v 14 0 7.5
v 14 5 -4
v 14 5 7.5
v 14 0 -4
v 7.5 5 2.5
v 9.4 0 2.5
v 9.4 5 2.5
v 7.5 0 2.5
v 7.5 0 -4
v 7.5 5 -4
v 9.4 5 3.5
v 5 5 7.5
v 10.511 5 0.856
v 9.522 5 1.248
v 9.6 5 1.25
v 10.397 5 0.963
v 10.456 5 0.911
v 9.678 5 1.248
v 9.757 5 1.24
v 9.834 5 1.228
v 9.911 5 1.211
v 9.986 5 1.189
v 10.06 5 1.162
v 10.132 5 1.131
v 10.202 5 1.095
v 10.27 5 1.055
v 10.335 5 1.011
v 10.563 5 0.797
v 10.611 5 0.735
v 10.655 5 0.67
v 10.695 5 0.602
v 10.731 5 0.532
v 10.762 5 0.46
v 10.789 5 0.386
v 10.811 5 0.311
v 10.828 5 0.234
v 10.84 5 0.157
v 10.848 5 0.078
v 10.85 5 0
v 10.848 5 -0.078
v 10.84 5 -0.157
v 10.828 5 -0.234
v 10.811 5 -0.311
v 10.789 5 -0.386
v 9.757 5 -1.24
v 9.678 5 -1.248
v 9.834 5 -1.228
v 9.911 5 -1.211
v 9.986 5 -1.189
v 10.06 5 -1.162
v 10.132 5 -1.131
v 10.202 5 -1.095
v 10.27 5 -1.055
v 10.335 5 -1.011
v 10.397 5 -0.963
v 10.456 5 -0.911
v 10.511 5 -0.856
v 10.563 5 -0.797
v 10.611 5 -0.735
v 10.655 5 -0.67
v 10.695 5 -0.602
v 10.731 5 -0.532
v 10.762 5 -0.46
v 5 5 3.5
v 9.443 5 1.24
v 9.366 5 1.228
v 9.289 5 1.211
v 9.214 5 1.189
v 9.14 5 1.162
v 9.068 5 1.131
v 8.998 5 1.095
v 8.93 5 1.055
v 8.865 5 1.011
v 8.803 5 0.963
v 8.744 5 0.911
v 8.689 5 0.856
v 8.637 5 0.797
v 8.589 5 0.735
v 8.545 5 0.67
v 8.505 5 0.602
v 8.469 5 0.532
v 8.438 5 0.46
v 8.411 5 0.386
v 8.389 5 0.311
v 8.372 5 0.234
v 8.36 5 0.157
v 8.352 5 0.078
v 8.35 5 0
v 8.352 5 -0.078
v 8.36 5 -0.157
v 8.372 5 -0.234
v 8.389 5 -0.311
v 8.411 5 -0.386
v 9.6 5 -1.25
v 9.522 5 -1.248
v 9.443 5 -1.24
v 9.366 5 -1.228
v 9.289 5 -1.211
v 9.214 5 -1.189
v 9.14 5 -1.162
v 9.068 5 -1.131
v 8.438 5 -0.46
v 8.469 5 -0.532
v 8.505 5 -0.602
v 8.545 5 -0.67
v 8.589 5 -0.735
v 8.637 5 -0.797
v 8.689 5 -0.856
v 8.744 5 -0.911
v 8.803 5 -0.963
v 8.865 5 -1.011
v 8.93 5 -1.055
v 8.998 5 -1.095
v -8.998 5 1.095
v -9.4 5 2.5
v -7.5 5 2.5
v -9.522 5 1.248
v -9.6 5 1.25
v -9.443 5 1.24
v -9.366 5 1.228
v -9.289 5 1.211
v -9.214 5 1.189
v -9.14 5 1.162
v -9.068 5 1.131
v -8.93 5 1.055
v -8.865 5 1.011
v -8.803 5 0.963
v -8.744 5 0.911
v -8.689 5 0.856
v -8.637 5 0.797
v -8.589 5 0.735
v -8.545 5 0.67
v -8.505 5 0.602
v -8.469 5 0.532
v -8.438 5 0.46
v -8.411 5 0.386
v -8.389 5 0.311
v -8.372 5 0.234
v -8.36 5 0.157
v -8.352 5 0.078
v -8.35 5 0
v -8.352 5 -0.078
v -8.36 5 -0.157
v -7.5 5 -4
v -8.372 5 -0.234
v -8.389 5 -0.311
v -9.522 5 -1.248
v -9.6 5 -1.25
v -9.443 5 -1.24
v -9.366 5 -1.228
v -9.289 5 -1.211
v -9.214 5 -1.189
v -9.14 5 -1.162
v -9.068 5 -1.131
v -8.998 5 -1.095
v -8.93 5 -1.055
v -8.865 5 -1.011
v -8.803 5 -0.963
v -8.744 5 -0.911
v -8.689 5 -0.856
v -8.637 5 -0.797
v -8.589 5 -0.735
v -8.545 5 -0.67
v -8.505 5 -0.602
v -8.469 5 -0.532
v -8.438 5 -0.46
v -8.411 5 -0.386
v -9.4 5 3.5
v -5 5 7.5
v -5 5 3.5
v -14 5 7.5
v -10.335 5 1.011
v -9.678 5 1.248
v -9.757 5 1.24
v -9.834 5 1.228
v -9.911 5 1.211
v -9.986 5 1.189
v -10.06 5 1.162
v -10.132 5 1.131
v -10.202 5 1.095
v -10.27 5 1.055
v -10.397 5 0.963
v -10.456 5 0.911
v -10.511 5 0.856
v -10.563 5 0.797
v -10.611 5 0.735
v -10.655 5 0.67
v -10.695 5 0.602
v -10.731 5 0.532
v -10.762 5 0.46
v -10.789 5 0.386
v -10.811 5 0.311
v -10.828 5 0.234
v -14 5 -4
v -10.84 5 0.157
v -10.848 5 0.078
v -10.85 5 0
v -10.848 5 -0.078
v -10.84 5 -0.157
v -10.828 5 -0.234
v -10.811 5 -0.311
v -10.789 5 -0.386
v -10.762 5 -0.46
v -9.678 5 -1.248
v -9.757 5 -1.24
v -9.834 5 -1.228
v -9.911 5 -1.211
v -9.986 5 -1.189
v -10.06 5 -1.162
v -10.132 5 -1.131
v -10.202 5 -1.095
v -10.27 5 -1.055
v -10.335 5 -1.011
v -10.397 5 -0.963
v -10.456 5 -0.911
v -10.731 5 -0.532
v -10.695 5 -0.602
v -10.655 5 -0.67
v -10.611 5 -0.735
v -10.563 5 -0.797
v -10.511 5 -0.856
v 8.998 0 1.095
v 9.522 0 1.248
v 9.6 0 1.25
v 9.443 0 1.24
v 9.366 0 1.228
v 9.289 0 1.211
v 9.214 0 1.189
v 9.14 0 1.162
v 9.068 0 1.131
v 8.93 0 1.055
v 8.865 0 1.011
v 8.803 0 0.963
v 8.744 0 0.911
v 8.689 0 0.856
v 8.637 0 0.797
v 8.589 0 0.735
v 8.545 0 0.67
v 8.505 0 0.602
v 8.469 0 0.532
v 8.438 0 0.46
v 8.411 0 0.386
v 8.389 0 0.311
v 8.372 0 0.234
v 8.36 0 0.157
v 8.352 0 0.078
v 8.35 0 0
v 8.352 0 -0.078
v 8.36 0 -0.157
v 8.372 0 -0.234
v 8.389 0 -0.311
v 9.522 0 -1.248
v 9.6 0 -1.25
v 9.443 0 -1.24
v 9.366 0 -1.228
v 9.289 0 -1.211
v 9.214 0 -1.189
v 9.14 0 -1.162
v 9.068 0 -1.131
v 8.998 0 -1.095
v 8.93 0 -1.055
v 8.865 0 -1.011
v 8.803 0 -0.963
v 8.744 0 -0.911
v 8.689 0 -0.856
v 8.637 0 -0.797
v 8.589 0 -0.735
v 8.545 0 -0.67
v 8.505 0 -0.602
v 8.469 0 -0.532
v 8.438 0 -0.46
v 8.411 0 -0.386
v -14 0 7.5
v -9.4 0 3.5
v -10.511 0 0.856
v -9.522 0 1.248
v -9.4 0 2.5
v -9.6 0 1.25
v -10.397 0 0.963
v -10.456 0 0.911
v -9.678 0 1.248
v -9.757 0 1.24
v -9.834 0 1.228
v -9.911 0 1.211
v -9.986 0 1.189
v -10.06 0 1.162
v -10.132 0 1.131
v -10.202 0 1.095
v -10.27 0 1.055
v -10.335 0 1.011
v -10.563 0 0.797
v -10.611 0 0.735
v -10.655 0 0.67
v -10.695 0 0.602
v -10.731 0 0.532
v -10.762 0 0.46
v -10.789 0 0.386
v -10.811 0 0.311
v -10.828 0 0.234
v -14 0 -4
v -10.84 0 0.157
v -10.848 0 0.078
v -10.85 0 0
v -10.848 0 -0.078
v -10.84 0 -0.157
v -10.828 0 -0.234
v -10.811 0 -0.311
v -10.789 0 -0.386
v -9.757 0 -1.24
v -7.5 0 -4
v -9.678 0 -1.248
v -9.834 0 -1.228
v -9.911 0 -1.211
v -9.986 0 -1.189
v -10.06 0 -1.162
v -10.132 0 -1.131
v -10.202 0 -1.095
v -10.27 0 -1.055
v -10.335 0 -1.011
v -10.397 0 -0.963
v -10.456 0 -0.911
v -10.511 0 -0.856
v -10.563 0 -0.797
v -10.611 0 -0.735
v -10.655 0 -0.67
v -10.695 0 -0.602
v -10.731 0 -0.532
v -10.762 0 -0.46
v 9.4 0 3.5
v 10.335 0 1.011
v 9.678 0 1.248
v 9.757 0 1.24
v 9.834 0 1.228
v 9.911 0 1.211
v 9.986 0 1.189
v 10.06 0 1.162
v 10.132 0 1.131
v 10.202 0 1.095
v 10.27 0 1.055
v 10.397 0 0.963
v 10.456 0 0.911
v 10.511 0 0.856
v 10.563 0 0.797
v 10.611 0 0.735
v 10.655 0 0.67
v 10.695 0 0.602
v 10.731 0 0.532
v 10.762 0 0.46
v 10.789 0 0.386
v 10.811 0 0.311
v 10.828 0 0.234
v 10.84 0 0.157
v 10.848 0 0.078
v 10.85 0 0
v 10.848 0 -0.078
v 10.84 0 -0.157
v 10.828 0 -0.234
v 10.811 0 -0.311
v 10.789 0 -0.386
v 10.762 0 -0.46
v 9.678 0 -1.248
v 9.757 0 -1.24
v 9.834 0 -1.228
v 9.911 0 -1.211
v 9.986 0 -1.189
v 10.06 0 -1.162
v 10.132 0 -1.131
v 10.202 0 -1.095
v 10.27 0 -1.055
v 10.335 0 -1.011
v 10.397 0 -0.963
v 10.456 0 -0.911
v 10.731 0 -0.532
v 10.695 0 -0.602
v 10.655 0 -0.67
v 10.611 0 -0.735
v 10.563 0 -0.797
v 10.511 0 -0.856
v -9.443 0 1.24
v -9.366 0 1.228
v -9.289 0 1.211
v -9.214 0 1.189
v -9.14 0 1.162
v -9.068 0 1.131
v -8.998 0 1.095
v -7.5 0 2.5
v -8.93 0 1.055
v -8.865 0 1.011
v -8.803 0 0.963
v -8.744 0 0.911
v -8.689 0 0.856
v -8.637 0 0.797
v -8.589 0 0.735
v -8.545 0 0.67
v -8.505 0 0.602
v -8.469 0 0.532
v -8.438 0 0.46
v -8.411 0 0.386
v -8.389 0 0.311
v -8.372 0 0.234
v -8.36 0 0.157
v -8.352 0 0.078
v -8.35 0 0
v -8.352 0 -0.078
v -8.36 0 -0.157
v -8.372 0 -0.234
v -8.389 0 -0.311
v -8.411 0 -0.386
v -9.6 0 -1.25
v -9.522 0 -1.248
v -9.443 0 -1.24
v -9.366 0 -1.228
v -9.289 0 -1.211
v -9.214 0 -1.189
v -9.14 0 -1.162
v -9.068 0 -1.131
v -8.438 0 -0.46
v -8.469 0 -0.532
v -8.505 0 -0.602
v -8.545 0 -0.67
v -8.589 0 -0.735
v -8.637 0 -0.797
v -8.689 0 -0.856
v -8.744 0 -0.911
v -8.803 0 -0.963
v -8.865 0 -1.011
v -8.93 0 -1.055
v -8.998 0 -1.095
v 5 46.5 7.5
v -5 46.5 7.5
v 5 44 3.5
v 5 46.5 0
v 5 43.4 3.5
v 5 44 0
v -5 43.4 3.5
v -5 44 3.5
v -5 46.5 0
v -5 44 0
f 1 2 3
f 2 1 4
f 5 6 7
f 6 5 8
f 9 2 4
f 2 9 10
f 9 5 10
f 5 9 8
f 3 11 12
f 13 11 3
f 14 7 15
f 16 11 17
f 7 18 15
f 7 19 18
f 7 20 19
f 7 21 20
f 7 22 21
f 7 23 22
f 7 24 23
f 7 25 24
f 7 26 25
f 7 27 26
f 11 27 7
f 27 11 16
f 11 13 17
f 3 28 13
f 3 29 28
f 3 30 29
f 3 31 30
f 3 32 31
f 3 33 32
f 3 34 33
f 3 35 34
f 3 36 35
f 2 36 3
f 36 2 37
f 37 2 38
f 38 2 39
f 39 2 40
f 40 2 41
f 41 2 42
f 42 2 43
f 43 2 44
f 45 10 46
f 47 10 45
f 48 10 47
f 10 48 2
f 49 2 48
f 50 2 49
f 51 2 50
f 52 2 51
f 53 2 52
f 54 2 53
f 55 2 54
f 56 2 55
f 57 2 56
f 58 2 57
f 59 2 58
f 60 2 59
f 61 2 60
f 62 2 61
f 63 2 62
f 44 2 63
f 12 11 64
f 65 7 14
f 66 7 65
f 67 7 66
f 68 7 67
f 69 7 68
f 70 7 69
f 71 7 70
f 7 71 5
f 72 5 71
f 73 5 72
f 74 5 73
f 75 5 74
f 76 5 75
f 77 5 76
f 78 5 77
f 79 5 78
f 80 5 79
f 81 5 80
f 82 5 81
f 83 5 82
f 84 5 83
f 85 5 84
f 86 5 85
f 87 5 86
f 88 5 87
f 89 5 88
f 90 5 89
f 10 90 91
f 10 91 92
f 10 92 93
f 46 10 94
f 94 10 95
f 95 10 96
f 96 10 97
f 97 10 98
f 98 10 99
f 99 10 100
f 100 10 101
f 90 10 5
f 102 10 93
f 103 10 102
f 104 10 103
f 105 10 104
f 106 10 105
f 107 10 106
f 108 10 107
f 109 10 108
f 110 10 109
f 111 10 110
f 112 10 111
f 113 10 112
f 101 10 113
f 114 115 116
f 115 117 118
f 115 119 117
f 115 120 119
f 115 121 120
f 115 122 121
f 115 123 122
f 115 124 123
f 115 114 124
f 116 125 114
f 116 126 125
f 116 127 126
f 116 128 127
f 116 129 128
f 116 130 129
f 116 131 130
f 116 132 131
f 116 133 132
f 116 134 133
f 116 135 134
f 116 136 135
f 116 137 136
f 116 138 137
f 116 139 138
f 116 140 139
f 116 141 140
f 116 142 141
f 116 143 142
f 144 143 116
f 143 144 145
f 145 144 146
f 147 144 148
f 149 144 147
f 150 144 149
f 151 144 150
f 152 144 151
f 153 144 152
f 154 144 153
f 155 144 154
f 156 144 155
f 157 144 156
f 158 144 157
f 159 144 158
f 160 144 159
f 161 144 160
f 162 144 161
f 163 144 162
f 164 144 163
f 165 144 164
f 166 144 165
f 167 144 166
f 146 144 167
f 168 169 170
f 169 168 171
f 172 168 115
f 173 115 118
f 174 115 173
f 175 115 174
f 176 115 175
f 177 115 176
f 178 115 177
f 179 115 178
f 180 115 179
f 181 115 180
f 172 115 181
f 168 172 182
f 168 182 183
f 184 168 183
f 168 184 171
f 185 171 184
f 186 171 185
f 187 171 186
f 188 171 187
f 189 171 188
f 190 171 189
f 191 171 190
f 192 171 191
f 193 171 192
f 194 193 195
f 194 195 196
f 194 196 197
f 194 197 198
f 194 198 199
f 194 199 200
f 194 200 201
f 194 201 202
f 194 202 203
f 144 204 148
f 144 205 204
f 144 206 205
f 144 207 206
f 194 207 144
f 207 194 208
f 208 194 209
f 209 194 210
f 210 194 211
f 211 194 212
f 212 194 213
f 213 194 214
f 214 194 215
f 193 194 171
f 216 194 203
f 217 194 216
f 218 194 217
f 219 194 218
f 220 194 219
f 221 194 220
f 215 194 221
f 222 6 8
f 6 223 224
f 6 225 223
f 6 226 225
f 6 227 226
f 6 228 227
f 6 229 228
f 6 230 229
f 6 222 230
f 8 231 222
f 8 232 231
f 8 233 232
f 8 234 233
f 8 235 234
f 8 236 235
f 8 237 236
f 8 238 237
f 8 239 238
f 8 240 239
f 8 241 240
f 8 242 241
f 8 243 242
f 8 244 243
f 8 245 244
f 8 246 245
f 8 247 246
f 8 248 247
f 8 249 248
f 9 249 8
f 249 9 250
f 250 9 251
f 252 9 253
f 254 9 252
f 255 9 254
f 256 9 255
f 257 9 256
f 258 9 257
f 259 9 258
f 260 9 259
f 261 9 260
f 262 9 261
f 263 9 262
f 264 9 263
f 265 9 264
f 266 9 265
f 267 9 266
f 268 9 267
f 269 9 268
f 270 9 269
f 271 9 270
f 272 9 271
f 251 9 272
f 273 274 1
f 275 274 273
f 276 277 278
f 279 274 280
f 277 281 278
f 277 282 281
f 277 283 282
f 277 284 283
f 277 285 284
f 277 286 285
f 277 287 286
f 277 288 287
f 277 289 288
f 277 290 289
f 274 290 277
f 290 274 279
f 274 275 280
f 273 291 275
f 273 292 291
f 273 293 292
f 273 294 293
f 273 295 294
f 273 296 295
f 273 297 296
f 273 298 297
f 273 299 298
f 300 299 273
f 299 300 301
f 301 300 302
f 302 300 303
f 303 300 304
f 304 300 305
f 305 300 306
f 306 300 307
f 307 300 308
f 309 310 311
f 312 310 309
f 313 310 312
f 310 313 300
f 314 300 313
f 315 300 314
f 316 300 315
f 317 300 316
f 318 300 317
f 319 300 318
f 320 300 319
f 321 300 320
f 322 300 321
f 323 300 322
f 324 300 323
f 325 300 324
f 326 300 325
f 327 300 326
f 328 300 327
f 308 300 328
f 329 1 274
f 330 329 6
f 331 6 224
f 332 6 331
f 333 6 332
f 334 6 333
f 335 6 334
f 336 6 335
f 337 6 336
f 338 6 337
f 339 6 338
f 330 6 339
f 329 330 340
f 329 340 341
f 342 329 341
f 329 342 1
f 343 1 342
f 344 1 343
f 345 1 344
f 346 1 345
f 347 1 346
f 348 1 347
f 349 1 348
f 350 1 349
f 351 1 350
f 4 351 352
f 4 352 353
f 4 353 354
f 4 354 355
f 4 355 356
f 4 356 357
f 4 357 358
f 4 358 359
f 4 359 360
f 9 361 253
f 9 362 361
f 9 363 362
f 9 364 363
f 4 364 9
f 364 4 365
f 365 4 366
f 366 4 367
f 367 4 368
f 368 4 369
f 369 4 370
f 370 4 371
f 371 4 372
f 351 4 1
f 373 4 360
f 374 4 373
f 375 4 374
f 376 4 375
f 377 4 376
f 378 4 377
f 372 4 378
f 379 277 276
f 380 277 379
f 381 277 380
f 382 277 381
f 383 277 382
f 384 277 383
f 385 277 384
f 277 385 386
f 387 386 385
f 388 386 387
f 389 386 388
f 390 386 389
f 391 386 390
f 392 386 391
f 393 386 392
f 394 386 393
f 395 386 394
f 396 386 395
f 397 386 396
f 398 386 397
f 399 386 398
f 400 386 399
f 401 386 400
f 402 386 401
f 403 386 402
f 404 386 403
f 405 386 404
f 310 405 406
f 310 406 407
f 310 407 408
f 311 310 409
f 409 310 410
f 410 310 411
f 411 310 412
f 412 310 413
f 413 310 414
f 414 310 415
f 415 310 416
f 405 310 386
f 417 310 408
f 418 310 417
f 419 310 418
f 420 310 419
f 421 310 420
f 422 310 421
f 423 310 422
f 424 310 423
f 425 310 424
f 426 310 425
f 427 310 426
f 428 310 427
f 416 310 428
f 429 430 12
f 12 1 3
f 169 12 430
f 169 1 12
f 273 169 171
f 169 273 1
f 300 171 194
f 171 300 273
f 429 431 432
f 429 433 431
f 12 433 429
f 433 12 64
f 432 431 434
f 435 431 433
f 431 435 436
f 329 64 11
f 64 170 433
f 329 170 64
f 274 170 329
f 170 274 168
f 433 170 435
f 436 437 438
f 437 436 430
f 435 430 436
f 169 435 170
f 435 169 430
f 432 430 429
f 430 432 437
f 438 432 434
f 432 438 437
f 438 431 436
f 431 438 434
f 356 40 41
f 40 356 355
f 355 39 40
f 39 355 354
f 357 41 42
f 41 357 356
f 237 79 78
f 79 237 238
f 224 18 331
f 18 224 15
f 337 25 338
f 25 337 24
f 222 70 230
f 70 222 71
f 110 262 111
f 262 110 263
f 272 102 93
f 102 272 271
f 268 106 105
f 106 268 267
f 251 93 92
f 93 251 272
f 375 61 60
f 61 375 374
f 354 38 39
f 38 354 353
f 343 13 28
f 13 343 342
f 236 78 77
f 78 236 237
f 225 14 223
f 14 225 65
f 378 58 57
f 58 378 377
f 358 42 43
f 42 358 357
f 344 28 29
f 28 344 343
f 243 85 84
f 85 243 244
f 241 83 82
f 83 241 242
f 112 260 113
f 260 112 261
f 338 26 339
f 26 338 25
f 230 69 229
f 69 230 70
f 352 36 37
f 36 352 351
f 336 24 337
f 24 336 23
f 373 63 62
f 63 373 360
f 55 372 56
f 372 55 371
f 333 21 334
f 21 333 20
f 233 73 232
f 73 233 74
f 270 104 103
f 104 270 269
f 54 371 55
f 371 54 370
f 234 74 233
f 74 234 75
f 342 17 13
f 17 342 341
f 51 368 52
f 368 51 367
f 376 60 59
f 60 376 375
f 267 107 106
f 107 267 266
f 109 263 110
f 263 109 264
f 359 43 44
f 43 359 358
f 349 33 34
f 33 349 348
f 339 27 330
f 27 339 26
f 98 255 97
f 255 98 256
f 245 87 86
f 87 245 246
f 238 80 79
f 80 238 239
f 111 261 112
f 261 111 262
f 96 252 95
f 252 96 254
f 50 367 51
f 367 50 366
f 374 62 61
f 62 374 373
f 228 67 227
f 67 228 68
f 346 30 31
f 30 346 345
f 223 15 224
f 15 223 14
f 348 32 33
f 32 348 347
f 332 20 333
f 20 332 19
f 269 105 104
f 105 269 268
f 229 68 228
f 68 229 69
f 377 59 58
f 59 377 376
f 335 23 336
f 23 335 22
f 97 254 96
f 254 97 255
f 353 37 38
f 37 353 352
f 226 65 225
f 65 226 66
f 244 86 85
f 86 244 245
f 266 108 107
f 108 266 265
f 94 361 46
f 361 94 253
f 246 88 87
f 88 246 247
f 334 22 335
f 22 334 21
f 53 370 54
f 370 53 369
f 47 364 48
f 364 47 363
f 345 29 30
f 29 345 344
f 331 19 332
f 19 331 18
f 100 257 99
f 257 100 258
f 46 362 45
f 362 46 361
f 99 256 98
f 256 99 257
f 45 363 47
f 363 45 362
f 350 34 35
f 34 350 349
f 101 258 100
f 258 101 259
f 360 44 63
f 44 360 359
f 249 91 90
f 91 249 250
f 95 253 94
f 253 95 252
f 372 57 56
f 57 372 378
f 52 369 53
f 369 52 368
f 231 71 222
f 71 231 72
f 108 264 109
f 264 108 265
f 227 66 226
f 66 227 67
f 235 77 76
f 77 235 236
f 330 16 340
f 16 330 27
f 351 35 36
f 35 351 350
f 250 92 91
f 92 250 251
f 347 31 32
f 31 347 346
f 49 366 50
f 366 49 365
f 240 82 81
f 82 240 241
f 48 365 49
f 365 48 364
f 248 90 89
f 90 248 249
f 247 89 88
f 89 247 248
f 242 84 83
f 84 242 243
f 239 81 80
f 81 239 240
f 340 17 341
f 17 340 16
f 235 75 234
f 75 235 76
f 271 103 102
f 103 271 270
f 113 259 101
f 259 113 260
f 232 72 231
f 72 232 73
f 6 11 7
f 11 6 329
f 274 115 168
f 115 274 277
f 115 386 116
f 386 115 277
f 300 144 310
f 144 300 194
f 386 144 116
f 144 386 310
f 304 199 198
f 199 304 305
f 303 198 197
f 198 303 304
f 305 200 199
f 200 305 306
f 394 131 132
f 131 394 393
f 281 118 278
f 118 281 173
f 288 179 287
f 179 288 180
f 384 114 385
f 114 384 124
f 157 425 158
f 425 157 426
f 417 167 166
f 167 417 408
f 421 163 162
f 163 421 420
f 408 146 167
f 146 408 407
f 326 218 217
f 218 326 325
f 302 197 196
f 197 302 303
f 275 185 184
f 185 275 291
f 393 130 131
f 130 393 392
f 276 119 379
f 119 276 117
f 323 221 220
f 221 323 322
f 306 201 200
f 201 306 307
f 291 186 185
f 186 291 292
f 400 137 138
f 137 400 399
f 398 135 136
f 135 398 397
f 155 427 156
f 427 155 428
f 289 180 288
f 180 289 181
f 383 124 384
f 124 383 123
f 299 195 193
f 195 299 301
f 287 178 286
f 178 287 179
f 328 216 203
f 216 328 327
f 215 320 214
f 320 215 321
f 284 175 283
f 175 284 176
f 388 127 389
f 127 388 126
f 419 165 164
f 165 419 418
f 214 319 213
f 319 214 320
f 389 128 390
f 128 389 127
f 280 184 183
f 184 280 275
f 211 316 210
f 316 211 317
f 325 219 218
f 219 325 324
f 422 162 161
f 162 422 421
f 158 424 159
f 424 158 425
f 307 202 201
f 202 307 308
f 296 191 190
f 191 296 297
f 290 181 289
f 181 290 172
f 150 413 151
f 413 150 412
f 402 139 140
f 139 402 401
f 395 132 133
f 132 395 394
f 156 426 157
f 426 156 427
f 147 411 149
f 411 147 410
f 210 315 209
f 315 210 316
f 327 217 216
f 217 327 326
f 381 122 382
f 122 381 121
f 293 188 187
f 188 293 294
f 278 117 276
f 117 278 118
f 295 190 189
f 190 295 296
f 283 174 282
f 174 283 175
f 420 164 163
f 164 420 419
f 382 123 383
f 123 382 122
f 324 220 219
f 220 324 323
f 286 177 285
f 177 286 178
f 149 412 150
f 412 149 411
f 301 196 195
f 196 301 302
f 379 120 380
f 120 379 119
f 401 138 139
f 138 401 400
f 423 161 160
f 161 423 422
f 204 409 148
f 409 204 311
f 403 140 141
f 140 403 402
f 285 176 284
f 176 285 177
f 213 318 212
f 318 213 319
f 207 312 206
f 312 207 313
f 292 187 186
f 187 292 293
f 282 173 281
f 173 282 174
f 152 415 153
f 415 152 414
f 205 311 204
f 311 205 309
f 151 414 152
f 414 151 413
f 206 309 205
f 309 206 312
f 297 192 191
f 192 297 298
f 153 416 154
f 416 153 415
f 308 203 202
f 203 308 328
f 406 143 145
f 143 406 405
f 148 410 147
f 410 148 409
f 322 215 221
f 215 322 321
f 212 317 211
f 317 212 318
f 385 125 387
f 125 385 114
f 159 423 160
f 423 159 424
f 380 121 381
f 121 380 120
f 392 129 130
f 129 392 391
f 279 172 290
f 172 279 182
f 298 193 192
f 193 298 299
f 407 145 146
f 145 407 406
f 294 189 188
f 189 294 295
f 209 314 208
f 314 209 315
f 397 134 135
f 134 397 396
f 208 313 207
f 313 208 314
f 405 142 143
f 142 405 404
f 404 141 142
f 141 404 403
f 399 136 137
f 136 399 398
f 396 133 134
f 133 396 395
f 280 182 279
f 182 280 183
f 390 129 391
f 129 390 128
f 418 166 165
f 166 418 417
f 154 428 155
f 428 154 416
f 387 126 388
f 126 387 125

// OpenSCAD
$fn=100;

single();
mirror([1,0,0])single();

//color("green")translate([0,22,3])cube([18,44,1],center=true);
//color("silver")translate([0,(7.5/2)-1.5,1])cube([9,7.5,3],center=true);

module single(){
    difference(){
        union(){
            translate([10.75,2.5,-0.75])cube([6.5,5,6.5],center=true);
            translate([0,2.5,5])cube([28,5,5],center=true);
            translate([0,24.25,5.5])cube([10,44.5,4],center=true);
            translate([0,45.25,2])cube([10,2.5,4],center=true);
        }union(){
            translate([9.6,-1,0])rotate([-90,0,0])cylinder(d=2.5,h=10);
            translate([0,21,3])cube([18.8,44.8,1],center=true);
        }
    }
}
